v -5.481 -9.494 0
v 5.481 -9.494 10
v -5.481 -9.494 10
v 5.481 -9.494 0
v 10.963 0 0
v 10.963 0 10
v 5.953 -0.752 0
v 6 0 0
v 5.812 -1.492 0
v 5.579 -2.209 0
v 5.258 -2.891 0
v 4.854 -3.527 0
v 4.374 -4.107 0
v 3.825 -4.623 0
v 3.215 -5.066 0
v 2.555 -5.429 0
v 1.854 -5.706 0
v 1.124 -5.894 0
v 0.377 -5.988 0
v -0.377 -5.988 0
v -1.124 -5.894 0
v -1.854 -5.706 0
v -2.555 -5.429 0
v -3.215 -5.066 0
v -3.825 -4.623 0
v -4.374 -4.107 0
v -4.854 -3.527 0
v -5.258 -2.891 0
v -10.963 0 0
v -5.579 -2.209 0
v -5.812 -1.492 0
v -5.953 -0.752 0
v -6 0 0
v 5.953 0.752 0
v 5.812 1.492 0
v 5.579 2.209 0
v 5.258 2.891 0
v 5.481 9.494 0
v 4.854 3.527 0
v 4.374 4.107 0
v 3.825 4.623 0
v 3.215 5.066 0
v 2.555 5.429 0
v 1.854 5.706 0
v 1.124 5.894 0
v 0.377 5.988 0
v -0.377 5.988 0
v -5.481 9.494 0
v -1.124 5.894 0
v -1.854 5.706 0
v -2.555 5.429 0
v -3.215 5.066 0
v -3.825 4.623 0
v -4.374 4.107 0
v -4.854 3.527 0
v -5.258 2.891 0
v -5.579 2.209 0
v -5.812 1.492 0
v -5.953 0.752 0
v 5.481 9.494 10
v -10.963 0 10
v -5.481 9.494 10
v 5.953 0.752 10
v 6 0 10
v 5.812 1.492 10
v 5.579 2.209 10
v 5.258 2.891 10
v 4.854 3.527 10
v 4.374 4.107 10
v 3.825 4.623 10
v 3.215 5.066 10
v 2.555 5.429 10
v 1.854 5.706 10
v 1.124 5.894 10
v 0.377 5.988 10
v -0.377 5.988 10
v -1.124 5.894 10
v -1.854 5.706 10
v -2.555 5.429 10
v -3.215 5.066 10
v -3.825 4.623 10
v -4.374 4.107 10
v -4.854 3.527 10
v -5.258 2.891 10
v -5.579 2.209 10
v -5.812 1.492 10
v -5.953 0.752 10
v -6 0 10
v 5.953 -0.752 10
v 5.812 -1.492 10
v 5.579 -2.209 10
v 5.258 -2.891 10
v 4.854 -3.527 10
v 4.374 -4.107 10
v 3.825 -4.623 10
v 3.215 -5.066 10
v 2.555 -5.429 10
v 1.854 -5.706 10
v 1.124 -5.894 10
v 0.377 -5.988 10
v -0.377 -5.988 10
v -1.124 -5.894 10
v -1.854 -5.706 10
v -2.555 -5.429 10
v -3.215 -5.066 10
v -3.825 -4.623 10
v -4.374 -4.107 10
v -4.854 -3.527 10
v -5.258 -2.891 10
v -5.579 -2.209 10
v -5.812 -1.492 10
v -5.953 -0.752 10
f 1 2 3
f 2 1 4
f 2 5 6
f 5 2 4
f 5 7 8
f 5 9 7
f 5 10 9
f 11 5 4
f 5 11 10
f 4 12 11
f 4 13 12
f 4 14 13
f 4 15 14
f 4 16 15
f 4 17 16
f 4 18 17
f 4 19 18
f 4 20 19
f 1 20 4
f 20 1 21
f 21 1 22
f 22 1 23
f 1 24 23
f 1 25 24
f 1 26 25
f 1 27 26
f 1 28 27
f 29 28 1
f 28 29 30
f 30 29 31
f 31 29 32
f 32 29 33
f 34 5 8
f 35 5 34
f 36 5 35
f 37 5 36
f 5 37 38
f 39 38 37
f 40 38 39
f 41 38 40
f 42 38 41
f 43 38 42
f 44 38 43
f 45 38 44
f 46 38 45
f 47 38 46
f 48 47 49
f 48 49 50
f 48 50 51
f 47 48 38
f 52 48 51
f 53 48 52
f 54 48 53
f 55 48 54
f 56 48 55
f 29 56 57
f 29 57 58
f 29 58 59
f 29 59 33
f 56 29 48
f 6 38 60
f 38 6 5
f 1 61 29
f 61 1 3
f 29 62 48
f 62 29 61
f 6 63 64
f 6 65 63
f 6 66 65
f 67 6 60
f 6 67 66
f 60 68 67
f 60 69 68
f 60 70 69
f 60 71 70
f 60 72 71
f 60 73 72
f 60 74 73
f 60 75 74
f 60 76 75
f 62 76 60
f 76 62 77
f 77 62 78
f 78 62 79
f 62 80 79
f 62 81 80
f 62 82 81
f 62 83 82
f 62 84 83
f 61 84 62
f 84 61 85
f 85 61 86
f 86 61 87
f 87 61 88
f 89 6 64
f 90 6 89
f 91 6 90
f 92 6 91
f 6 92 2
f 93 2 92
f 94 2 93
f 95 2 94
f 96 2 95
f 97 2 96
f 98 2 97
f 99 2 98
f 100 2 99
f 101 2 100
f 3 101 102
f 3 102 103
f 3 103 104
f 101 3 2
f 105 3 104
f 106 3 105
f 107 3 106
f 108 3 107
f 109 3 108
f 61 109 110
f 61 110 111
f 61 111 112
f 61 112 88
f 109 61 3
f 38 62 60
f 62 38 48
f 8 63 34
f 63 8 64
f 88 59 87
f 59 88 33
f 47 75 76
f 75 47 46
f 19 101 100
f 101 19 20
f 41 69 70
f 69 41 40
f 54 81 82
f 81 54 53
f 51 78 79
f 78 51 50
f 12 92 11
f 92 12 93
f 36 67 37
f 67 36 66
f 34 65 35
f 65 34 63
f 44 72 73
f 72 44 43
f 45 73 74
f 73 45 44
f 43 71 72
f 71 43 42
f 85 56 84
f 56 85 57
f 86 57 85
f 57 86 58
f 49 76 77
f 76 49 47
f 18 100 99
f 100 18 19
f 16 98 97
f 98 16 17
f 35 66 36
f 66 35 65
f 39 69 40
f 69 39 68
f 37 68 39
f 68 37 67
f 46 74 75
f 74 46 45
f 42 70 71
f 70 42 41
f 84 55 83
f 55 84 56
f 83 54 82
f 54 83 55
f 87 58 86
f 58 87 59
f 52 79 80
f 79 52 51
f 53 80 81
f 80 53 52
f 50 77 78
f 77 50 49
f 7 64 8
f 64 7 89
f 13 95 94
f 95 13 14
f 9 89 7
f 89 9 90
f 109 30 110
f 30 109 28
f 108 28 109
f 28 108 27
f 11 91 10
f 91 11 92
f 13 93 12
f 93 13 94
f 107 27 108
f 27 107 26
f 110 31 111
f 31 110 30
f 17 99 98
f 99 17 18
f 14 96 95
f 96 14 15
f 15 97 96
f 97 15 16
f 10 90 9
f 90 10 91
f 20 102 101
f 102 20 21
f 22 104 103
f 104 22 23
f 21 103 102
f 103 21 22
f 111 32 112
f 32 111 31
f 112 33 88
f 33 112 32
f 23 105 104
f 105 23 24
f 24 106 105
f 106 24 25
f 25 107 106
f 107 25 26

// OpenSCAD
$fn = 50;


difference() {
	union() {
		translate(v = [0, 0, 0]) {
			rotate(a = [0, 0, 0]) {
				difference() {
					union() {
						linear_extrude(height = 10) {
							polygon(points = [[10.9630000000, 0.0000000000], [5.4815000000, 9.4942365017], [-5.4815000000, 9.4942365017], [-10.9630000000, 0.0000000000], [-5.4815000000, -9.4942365017], [5.4815000000, -9.4942365017]]);
						}
					}
					union();
				}
			}
		}
	}
	union() {
		cylinder(h = 100, r = 6.0000000000);
	}
}
